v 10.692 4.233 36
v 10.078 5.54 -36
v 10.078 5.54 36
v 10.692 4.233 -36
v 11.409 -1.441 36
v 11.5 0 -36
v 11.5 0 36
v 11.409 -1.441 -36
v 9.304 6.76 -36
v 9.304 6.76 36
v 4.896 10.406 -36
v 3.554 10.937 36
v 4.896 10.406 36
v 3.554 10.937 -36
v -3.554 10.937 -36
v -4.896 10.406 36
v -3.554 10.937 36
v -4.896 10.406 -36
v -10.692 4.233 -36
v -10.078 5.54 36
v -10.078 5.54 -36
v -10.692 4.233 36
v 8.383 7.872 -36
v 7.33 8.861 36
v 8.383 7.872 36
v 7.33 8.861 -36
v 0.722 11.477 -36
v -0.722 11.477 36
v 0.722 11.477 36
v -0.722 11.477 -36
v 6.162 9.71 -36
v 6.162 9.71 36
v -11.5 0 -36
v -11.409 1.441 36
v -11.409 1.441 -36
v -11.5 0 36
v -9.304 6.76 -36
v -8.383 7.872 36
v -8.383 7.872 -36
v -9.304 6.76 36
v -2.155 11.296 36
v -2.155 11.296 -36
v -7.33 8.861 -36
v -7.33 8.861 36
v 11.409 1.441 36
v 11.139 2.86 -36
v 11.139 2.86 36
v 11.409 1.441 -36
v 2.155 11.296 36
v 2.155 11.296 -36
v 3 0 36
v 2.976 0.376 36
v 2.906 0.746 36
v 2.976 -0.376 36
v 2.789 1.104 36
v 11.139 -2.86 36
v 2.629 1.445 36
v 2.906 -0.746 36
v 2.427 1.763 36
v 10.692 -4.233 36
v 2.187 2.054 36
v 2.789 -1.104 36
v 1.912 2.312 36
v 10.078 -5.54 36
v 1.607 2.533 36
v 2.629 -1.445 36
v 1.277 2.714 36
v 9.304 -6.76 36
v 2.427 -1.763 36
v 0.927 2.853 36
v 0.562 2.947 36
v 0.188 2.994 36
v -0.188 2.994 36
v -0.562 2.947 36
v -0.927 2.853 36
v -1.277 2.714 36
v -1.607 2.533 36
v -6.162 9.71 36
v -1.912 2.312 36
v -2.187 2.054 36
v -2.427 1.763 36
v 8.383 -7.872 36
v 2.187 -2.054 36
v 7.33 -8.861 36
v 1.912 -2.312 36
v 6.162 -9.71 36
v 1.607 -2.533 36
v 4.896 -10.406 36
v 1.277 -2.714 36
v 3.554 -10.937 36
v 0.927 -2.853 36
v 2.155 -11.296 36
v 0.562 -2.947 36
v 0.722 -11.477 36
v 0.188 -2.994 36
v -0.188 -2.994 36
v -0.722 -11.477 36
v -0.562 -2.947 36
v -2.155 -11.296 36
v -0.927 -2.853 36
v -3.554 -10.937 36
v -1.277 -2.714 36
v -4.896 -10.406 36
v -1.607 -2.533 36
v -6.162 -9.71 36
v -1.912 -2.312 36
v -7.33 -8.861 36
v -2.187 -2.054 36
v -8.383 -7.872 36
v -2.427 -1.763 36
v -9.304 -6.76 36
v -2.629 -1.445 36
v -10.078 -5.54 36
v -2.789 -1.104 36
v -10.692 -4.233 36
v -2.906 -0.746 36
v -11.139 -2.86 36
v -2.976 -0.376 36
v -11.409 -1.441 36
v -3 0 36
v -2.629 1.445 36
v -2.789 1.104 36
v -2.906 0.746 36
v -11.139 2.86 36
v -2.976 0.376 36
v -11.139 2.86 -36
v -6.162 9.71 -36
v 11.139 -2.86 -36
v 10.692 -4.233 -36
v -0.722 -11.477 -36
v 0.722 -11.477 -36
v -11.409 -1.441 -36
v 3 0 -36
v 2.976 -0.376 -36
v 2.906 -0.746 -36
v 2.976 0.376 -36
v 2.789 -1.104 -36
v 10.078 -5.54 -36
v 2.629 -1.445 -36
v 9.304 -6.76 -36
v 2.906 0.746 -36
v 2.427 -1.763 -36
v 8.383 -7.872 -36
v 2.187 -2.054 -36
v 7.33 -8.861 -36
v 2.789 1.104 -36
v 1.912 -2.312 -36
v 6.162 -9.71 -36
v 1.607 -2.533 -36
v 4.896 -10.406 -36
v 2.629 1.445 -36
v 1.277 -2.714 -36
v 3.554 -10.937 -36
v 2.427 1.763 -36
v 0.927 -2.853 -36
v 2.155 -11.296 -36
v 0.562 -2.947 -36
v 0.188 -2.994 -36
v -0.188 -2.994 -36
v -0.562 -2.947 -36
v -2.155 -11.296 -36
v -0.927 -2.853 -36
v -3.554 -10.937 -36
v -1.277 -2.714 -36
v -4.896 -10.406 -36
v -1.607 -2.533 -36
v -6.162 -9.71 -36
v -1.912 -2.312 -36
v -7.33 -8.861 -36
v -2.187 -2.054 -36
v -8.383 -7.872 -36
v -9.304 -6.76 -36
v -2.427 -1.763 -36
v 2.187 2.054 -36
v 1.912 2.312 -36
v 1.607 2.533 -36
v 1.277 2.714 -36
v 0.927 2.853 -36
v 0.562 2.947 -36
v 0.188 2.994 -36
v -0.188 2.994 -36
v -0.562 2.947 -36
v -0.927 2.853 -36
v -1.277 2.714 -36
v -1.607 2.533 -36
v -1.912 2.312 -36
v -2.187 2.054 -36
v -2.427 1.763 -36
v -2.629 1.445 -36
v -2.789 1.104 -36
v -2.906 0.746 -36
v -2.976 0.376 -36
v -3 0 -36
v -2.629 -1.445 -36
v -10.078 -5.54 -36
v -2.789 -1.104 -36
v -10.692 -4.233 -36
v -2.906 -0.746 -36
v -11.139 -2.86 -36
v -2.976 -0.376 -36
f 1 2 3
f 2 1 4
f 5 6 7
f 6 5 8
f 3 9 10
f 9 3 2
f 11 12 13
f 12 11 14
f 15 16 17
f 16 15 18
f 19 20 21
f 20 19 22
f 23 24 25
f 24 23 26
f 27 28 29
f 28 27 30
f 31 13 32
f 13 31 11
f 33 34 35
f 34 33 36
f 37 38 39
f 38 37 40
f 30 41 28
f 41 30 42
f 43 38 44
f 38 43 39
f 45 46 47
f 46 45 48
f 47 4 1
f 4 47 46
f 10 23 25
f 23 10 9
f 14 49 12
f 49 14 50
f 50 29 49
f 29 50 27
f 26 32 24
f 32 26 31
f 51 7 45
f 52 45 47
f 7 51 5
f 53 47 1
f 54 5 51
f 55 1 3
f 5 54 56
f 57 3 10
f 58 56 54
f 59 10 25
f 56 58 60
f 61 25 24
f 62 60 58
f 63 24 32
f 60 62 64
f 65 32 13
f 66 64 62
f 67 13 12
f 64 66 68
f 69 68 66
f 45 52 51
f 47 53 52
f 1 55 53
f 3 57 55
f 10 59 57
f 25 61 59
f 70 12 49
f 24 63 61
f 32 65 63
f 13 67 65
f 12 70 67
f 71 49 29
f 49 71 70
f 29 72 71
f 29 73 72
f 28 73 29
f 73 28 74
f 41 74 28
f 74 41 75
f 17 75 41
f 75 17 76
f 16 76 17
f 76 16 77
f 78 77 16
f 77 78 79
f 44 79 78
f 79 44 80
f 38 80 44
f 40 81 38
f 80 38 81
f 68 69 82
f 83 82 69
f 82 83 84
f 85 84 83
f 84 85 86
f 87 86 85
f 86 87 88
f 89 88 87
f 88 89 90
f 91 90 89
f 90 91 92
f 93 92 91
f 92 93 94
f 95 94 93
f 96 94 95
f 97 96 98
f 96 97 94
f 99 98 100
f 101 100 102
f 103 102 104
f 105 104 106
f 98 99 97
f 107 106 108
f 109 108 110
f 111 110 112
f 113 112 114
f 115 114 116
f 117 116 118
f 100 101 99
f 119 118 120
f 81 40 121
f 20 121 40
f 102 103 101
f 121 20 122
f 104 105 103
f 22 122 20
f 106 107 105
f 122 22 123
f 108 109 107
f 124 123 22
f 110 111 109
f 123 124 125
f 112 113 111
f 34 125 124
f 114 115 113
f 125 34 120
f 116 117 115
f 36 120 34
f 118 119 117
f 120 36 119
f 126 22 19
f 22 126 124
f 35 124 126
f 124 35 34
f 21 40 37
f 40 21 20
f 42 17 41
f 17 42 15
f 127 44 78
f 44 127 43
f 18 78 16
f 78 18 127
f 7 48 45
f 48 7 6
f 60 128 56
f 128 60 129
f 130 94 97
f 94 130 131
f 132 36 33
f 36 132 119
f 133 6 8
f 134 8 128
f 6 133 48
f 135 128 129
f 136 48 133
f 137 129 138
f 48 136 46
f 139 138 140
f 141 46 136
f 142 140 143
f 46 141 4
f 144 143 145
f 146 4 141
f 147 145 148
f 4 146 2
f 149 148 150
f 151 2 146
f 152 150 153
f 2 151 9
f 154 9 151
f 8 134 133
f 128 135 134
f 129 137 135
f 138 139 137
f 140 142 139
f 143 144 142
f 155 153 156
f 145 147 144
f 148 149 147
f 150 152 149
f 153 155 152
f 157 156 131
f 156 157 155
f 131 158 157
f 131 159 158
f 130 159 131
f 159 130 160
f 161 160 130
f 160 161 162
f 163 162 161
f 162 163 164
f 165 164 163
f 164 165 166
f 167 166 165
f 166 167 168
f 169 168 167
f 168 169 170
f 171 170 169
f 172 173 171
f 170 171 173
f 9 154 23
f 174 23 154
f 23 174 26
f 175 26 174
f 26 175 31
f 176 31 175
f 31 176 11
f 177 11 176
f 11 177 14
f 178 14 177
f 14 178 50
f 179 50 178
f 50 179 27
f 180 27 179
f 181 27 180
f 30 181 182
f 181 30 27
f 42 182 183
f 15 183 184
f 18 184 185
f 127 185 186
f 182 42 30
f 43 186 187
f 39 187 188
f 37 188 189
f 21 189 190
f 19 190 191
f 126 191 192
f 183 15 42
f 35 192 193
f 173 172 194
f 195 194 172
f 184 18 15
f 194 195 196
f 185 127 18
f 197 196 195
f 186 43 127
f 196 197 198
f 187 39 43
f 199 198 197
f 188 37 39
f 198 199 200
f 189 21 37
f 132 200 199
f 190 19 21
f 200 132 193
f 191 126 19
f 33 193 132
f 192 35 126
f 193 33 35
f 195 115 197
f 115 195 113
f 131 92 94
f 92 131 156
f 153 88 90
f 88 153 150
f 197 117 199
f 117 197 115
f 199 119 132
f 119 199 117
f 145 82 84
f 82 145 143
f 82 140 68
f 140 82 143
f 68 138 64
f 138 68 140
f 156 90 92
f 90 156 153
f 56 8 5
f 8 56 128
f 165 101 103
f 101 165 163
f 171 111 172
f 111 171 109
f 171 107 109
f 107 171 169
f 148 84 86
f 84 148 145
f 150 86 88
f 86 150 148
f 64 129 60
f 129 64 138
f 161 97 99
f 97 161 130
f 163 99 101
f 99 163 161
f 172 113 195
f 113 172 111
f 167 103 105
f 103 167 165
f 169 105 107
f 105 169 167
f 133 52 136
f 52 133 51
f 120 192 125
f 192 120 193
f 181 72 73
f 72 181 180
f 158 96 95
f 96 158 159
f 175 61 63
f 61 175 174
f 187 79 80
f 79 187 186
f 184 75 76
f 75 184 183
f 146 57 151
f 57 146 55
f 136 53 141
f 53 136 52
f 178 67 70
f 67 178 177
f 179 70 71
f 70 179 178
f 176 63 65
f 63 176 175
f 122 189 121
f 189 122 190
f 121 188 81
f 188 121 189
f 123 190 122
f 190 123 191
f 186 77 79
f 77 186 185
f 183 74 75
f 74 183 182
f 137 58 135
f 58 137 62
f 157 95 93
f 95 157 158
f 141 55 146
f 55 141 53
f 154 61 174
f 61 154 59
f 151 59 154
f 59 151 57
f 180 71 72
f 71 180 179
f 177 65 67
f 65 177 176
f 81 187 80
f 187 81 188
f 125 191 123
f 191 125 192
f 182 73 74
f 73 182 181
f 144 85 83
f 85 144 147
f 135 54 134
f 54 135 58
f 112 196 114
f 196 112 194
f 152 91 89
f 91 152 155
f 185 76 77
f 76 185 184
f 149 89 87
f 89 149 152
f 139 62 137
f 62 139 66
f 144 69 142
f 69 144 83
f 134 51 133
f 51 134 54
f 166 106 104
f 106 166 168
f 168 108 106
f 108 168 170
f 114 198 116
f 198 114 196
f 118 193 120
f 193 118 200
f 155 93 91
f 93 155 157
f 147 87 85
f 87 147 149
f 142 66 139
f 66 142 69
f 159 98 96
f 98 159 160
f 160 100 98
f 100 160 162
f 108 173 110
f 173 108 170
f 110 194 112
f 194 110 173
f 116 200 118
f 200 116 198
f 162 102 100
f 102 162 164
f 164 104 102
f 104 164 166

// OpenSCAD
$fn = 50;


difference() {
	union() {
		translate(v = [0, 0, -36.0000000000]) {
			cylinder(h = 72, r = 11.5000000000);
		}
	}
	union() {
		translate(v = [0, 0, -100.0000000000]) {
			cylinder(h = 200, r = 3);
		}
	}
}
